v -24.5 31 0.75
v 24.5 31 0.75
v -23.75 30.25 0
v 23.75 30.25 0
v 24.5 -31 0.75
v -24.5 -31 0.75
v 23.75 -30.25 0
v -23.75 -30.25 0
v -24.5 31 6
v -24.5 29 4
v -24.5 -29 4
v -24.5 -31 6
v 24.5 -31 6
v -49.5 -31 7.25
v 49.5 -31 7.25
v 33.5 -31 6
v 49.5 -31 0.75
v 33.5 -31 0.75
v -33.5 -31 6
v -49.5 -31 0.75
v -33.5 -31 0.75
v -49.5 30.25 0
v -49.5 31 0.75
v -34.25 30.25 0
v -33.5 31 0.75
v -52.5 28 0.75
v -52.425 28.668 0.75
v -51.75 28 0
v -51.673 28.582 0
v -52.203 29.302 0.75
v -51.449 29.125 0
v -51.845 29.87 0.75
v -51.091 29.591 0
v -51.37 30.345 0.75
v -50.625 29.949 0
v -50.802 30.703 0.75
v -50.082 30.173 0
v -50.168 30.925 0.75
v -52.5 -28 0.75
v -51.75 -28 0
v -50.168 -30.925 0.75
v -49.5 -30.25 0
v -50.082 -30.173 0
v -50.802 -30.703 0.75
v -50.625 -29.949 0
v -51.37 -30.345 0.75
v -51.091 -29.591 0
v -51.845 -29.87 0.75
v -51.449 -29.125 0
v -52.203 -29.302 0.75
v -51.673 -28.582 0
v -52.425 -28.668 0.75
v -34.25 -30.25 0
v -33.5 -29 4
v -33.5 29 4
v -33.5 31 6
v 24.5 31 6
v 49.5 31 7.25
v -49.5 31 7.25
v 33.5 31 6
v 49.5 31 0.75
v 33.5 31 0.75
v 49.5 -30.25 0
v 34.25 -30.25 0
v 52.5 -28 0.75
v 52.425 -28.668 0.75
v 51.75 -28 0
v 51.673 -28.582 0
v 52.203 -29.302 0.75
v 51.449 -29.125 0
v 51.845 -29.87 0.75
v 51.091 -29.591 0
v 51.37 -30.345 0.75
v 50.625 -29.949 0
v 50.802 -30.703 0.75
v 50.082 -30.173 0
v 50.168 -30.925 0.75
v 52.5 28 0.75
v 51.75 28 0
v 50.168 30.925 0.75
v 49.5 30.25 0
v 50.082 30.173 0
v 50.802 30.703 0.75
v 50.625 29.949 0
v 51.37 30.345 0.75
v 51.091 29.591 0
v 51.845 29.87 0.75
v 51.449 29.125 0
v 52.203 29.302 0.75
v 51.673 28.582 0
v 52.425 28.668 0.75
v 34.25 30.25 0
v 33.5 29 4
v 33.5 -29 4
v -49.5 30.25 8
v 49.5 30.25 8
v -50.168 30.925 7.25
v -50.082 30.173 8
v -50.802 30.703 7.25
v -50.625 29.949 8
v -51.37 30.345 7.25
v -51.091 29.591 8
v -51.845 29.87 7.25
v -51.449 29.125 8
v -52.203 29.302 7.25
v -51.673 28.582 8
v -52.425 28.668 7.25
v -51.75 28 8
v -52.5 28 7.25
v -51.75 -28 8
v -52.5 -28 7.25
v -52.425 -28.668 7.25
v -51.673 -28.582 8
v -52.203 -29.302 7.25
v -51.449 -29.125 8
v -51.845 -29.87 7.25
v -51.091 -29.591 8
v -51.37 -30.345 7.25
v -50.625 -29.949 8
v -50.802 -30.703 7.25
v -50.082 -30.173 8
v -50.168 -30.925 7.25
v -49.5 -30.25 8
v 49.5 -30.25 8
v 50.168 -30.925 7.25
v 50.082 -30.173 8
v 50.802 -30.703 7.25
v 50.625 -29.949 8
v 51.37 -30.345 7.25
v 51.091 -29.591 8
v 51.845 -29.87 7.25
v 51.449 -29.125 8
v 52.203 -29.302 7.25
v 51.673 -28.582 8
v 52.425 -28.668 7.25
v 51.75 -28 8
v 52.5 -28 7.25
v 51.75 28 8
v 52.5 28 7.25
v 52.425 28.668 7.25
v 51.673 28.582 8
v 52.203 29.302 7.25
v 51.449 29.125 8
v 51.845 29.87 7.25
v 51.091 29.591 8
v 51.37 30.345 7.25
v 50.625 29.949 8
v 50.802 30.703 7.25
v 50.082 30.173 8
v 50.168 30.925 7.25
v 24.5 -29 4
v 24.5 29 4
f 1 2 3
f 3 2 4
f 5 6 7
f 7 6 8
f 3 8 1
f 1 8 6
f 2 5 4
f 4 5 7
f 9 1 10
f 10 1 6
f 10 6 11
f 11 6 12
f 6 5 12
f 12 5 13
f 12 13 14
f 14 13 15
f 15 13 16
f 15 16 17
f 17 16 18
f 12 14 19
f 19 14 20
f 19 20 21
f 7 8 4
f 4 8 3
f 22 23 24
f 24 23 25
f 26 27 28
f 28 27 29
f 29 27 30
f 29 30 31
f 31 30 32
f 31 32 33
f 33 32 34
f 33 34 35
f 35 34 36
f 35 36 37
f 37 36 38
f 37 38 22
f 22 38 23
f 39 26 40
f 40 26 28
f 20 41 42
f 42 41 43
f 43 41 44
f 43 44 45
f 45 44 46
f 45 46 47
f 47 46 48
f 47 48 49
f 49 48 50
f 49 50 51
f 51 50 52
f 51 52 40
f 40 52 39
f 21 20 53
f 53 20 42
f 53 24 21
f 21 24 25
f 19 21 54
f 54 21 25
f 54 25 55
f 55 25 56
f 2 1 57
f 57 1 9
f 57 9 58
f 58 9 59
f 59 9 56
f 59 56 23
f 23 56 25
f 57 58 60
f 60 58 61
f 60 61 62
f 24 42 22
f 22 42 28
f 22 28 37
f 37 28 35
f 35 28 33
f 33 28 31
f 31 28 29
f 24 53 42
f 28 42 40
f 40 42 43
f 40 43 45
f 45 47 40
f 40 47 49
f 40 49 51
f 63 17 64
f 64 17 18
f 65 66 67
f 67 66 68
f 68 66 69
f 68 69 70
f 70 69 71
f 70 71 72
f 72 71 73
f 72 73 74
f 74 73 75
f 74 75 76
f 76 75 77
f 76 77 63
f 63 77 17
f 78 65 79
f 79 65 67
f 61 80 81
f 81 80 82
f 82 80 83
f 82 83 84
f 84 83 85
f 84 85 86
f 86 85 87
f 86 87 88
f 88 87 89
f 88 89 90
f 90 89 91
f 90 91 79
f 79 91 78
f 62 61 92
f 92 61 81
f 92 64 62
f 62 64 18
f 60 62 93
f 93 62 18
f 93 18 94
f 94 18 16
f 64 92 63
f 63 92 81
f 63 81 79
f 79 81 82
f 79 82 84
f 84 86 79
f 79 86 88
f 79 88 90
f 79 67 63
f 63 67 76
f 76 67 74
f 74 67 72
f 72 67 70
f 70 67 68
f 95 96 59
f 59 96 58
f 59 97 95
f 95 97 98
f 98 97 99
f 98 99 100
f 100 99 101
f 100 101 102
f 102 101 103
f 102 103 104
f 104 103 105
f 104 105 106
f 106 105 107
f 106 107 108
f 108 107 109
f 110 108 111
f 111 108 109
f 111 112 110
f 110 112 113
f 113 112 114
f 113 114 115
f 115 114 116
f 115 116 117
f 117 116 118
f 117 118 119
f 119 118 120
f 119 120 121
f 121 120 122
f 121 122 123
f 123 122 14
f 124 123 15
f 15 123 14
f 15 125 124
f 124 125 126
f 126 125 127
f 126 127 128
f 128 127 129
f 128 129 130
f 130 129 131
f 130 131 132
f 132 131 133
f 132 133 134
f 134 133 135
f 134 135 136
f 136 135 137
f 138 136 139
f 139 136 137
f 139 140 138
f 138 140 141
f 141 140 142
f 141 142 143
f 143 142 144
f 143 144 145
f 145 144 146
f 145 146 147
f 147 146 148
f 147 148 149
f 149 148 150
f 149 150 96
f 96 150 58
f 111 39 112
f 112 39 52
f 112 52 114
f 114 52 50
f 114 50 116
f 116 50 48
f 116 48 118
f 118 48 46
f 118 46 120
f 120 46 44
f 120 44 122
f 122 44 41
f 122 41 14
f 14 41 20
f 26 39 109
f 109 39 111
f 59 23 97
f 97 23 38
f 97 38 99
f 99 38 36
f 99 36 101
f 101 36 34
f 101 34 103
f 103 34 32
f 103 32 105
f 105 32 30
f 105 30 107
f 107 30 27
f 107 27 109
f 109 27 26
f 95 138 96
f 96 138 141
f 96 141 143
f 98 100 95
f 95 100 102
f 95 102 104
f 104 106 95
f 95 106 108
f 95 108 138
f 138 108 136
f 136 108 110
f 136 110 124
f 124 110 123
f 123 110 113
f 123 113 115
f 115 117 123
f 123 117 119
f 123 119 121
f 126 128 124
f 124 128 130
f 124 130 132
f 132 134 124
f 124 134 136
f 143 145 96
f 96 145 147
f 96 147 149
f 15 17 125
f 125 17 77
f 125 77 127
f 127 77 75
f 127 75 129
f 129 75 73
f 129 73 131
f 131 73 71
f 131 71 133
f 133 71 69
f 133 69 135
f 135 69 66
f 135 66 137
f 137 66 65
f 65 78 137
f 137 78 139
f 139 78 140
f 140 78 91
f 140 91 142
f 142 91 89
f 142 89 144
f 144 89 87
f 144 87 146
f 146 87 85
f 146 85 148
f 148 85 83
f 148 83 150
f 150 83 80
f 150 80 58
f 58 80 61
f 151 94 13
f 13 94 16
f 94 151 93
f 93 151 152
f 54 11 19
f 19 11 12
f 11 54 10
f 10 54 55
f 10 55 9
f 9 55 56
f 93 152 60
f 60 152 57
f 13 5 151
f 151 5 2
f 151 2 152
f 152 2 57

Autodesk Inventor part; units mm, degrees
ref_plane "YZ Plane" through (0, 0, 0) normal (1, 0, 0) x (0, 1, 0)
ref_plane "XZ Plane" through (0, 0, 0) normal (0, 1, 0) x (-1, 0, 0)
ref_plane "XY Plane" through (0, 0, 0) normal (0, 0, 1) x (1, 0, 0)
sketch "Sketch1" plane through (0, 0, 0) normal (0, 0, 1) x (1, 0, 0)
  line L0 (-52.5, -31) -> (52.5, -31)
  line L1 (52.5, -31) -> (52.5, 31)
  line L2 (52.5, 31) -> (-52.5, 31)
  line L3 (-52.5, 31) -> (-52.5, -31)
  line L4 (-52.5, -31) -> (52.5, 31) construction
  line L5 (52.5, -31) -> (-52.5, 31) construction
  point P0 (0, 0)
  dimension "d1" = 105
  dimension "d2" = 62
extrude "Extrusion1" add sketch "Sketch1" along normal blind 8
sketch "Sketch2" plane through (0, 0, 0) normal (0, 0, -1) x (-1, 0, 0)
  line L0 (-52.5, -31) -> (-52.5, 31) projected
  line L1 (52.5, -31) -> (-52.5, -31) projected
  line L2 (52.5, 31) -> (52.5, -31) projected
  line L3 (-52.5, 31) -> (52.5, 31) projected
  line L4 (52.5, -31) -> (-52.5, -31) projected
  line L5 (33.5, -31) -> (24.5, -31)
  line L6 (24.5, -31) -> (24.5, 31)
  line L7 (24.5, 31) -> (33.5, 31)
  line L8 (33.5, 31) -> (33.5, -31)
  line L9 (-73.5, 0) -> (73.5, 0) construction
  line L10 (0, -43.4) -> (0, 43.4) construction
  line L11 (-33.5, -31) -> (-24.5, -31)
  line L12 (-24.5, -31) -> (-24.5, 31)
  line L13 (-24.5, 31) -> (-33.5, 31)
  line L14 (-33.5, 31) -> (-33.5, -31)
  point P0 (0, 0)
  point P1 (-33.5, 31)
  point P2 (-24.5, 31)
  point P3 (33.5, 31)
  dimension "d5" = 9
  dimension "d6" = 19
extrude "Extrusion2" cut sketch "Sketch2" against normal blind 4 contours L14 L3 L12 L1 | L6 L3 L8 L1
chamfer "Chamfer1" distance 2 angle 45 4 edges at (-29, -31, 4) (29, -31, 4) (29, 31, 4) (-29, 31, 4)
fillet "Fillet1" radius 3 4 edges at (-52.5, -31, 4) (-52.5, 31, 4) (52.5, -31, 4) (52.5, 31, 4)
chamfer "Chamfer2" distance 0.75 angle 45 4 edges at (0, -31, 8) (-52.5, 0, 8) (0, 31, 8) (52.5, 0, 8)
chamfer "Chamfer3" distance 0.75 angle 45 16 edges at (-52.5, 0, 0) (-51.6213, -30.1213, 0) (-41.5, -31, 0) (-51.6213, 30.1213, 0) (-41.5, 31, 0) (52.5, 0, 0) (51.6213, 30.1213, 0) (41.5, 31, 0) (51.6213, -30.1213, 0) (41.5, -31, 0) (0, 31, 0) (24.5, 0, 0) (0, -31, 0) (-24.5, 0, 0) (-33.5, 0, 0) (33.5, 0, 0)
properties part number "BatteryHolder_3DPrint"
